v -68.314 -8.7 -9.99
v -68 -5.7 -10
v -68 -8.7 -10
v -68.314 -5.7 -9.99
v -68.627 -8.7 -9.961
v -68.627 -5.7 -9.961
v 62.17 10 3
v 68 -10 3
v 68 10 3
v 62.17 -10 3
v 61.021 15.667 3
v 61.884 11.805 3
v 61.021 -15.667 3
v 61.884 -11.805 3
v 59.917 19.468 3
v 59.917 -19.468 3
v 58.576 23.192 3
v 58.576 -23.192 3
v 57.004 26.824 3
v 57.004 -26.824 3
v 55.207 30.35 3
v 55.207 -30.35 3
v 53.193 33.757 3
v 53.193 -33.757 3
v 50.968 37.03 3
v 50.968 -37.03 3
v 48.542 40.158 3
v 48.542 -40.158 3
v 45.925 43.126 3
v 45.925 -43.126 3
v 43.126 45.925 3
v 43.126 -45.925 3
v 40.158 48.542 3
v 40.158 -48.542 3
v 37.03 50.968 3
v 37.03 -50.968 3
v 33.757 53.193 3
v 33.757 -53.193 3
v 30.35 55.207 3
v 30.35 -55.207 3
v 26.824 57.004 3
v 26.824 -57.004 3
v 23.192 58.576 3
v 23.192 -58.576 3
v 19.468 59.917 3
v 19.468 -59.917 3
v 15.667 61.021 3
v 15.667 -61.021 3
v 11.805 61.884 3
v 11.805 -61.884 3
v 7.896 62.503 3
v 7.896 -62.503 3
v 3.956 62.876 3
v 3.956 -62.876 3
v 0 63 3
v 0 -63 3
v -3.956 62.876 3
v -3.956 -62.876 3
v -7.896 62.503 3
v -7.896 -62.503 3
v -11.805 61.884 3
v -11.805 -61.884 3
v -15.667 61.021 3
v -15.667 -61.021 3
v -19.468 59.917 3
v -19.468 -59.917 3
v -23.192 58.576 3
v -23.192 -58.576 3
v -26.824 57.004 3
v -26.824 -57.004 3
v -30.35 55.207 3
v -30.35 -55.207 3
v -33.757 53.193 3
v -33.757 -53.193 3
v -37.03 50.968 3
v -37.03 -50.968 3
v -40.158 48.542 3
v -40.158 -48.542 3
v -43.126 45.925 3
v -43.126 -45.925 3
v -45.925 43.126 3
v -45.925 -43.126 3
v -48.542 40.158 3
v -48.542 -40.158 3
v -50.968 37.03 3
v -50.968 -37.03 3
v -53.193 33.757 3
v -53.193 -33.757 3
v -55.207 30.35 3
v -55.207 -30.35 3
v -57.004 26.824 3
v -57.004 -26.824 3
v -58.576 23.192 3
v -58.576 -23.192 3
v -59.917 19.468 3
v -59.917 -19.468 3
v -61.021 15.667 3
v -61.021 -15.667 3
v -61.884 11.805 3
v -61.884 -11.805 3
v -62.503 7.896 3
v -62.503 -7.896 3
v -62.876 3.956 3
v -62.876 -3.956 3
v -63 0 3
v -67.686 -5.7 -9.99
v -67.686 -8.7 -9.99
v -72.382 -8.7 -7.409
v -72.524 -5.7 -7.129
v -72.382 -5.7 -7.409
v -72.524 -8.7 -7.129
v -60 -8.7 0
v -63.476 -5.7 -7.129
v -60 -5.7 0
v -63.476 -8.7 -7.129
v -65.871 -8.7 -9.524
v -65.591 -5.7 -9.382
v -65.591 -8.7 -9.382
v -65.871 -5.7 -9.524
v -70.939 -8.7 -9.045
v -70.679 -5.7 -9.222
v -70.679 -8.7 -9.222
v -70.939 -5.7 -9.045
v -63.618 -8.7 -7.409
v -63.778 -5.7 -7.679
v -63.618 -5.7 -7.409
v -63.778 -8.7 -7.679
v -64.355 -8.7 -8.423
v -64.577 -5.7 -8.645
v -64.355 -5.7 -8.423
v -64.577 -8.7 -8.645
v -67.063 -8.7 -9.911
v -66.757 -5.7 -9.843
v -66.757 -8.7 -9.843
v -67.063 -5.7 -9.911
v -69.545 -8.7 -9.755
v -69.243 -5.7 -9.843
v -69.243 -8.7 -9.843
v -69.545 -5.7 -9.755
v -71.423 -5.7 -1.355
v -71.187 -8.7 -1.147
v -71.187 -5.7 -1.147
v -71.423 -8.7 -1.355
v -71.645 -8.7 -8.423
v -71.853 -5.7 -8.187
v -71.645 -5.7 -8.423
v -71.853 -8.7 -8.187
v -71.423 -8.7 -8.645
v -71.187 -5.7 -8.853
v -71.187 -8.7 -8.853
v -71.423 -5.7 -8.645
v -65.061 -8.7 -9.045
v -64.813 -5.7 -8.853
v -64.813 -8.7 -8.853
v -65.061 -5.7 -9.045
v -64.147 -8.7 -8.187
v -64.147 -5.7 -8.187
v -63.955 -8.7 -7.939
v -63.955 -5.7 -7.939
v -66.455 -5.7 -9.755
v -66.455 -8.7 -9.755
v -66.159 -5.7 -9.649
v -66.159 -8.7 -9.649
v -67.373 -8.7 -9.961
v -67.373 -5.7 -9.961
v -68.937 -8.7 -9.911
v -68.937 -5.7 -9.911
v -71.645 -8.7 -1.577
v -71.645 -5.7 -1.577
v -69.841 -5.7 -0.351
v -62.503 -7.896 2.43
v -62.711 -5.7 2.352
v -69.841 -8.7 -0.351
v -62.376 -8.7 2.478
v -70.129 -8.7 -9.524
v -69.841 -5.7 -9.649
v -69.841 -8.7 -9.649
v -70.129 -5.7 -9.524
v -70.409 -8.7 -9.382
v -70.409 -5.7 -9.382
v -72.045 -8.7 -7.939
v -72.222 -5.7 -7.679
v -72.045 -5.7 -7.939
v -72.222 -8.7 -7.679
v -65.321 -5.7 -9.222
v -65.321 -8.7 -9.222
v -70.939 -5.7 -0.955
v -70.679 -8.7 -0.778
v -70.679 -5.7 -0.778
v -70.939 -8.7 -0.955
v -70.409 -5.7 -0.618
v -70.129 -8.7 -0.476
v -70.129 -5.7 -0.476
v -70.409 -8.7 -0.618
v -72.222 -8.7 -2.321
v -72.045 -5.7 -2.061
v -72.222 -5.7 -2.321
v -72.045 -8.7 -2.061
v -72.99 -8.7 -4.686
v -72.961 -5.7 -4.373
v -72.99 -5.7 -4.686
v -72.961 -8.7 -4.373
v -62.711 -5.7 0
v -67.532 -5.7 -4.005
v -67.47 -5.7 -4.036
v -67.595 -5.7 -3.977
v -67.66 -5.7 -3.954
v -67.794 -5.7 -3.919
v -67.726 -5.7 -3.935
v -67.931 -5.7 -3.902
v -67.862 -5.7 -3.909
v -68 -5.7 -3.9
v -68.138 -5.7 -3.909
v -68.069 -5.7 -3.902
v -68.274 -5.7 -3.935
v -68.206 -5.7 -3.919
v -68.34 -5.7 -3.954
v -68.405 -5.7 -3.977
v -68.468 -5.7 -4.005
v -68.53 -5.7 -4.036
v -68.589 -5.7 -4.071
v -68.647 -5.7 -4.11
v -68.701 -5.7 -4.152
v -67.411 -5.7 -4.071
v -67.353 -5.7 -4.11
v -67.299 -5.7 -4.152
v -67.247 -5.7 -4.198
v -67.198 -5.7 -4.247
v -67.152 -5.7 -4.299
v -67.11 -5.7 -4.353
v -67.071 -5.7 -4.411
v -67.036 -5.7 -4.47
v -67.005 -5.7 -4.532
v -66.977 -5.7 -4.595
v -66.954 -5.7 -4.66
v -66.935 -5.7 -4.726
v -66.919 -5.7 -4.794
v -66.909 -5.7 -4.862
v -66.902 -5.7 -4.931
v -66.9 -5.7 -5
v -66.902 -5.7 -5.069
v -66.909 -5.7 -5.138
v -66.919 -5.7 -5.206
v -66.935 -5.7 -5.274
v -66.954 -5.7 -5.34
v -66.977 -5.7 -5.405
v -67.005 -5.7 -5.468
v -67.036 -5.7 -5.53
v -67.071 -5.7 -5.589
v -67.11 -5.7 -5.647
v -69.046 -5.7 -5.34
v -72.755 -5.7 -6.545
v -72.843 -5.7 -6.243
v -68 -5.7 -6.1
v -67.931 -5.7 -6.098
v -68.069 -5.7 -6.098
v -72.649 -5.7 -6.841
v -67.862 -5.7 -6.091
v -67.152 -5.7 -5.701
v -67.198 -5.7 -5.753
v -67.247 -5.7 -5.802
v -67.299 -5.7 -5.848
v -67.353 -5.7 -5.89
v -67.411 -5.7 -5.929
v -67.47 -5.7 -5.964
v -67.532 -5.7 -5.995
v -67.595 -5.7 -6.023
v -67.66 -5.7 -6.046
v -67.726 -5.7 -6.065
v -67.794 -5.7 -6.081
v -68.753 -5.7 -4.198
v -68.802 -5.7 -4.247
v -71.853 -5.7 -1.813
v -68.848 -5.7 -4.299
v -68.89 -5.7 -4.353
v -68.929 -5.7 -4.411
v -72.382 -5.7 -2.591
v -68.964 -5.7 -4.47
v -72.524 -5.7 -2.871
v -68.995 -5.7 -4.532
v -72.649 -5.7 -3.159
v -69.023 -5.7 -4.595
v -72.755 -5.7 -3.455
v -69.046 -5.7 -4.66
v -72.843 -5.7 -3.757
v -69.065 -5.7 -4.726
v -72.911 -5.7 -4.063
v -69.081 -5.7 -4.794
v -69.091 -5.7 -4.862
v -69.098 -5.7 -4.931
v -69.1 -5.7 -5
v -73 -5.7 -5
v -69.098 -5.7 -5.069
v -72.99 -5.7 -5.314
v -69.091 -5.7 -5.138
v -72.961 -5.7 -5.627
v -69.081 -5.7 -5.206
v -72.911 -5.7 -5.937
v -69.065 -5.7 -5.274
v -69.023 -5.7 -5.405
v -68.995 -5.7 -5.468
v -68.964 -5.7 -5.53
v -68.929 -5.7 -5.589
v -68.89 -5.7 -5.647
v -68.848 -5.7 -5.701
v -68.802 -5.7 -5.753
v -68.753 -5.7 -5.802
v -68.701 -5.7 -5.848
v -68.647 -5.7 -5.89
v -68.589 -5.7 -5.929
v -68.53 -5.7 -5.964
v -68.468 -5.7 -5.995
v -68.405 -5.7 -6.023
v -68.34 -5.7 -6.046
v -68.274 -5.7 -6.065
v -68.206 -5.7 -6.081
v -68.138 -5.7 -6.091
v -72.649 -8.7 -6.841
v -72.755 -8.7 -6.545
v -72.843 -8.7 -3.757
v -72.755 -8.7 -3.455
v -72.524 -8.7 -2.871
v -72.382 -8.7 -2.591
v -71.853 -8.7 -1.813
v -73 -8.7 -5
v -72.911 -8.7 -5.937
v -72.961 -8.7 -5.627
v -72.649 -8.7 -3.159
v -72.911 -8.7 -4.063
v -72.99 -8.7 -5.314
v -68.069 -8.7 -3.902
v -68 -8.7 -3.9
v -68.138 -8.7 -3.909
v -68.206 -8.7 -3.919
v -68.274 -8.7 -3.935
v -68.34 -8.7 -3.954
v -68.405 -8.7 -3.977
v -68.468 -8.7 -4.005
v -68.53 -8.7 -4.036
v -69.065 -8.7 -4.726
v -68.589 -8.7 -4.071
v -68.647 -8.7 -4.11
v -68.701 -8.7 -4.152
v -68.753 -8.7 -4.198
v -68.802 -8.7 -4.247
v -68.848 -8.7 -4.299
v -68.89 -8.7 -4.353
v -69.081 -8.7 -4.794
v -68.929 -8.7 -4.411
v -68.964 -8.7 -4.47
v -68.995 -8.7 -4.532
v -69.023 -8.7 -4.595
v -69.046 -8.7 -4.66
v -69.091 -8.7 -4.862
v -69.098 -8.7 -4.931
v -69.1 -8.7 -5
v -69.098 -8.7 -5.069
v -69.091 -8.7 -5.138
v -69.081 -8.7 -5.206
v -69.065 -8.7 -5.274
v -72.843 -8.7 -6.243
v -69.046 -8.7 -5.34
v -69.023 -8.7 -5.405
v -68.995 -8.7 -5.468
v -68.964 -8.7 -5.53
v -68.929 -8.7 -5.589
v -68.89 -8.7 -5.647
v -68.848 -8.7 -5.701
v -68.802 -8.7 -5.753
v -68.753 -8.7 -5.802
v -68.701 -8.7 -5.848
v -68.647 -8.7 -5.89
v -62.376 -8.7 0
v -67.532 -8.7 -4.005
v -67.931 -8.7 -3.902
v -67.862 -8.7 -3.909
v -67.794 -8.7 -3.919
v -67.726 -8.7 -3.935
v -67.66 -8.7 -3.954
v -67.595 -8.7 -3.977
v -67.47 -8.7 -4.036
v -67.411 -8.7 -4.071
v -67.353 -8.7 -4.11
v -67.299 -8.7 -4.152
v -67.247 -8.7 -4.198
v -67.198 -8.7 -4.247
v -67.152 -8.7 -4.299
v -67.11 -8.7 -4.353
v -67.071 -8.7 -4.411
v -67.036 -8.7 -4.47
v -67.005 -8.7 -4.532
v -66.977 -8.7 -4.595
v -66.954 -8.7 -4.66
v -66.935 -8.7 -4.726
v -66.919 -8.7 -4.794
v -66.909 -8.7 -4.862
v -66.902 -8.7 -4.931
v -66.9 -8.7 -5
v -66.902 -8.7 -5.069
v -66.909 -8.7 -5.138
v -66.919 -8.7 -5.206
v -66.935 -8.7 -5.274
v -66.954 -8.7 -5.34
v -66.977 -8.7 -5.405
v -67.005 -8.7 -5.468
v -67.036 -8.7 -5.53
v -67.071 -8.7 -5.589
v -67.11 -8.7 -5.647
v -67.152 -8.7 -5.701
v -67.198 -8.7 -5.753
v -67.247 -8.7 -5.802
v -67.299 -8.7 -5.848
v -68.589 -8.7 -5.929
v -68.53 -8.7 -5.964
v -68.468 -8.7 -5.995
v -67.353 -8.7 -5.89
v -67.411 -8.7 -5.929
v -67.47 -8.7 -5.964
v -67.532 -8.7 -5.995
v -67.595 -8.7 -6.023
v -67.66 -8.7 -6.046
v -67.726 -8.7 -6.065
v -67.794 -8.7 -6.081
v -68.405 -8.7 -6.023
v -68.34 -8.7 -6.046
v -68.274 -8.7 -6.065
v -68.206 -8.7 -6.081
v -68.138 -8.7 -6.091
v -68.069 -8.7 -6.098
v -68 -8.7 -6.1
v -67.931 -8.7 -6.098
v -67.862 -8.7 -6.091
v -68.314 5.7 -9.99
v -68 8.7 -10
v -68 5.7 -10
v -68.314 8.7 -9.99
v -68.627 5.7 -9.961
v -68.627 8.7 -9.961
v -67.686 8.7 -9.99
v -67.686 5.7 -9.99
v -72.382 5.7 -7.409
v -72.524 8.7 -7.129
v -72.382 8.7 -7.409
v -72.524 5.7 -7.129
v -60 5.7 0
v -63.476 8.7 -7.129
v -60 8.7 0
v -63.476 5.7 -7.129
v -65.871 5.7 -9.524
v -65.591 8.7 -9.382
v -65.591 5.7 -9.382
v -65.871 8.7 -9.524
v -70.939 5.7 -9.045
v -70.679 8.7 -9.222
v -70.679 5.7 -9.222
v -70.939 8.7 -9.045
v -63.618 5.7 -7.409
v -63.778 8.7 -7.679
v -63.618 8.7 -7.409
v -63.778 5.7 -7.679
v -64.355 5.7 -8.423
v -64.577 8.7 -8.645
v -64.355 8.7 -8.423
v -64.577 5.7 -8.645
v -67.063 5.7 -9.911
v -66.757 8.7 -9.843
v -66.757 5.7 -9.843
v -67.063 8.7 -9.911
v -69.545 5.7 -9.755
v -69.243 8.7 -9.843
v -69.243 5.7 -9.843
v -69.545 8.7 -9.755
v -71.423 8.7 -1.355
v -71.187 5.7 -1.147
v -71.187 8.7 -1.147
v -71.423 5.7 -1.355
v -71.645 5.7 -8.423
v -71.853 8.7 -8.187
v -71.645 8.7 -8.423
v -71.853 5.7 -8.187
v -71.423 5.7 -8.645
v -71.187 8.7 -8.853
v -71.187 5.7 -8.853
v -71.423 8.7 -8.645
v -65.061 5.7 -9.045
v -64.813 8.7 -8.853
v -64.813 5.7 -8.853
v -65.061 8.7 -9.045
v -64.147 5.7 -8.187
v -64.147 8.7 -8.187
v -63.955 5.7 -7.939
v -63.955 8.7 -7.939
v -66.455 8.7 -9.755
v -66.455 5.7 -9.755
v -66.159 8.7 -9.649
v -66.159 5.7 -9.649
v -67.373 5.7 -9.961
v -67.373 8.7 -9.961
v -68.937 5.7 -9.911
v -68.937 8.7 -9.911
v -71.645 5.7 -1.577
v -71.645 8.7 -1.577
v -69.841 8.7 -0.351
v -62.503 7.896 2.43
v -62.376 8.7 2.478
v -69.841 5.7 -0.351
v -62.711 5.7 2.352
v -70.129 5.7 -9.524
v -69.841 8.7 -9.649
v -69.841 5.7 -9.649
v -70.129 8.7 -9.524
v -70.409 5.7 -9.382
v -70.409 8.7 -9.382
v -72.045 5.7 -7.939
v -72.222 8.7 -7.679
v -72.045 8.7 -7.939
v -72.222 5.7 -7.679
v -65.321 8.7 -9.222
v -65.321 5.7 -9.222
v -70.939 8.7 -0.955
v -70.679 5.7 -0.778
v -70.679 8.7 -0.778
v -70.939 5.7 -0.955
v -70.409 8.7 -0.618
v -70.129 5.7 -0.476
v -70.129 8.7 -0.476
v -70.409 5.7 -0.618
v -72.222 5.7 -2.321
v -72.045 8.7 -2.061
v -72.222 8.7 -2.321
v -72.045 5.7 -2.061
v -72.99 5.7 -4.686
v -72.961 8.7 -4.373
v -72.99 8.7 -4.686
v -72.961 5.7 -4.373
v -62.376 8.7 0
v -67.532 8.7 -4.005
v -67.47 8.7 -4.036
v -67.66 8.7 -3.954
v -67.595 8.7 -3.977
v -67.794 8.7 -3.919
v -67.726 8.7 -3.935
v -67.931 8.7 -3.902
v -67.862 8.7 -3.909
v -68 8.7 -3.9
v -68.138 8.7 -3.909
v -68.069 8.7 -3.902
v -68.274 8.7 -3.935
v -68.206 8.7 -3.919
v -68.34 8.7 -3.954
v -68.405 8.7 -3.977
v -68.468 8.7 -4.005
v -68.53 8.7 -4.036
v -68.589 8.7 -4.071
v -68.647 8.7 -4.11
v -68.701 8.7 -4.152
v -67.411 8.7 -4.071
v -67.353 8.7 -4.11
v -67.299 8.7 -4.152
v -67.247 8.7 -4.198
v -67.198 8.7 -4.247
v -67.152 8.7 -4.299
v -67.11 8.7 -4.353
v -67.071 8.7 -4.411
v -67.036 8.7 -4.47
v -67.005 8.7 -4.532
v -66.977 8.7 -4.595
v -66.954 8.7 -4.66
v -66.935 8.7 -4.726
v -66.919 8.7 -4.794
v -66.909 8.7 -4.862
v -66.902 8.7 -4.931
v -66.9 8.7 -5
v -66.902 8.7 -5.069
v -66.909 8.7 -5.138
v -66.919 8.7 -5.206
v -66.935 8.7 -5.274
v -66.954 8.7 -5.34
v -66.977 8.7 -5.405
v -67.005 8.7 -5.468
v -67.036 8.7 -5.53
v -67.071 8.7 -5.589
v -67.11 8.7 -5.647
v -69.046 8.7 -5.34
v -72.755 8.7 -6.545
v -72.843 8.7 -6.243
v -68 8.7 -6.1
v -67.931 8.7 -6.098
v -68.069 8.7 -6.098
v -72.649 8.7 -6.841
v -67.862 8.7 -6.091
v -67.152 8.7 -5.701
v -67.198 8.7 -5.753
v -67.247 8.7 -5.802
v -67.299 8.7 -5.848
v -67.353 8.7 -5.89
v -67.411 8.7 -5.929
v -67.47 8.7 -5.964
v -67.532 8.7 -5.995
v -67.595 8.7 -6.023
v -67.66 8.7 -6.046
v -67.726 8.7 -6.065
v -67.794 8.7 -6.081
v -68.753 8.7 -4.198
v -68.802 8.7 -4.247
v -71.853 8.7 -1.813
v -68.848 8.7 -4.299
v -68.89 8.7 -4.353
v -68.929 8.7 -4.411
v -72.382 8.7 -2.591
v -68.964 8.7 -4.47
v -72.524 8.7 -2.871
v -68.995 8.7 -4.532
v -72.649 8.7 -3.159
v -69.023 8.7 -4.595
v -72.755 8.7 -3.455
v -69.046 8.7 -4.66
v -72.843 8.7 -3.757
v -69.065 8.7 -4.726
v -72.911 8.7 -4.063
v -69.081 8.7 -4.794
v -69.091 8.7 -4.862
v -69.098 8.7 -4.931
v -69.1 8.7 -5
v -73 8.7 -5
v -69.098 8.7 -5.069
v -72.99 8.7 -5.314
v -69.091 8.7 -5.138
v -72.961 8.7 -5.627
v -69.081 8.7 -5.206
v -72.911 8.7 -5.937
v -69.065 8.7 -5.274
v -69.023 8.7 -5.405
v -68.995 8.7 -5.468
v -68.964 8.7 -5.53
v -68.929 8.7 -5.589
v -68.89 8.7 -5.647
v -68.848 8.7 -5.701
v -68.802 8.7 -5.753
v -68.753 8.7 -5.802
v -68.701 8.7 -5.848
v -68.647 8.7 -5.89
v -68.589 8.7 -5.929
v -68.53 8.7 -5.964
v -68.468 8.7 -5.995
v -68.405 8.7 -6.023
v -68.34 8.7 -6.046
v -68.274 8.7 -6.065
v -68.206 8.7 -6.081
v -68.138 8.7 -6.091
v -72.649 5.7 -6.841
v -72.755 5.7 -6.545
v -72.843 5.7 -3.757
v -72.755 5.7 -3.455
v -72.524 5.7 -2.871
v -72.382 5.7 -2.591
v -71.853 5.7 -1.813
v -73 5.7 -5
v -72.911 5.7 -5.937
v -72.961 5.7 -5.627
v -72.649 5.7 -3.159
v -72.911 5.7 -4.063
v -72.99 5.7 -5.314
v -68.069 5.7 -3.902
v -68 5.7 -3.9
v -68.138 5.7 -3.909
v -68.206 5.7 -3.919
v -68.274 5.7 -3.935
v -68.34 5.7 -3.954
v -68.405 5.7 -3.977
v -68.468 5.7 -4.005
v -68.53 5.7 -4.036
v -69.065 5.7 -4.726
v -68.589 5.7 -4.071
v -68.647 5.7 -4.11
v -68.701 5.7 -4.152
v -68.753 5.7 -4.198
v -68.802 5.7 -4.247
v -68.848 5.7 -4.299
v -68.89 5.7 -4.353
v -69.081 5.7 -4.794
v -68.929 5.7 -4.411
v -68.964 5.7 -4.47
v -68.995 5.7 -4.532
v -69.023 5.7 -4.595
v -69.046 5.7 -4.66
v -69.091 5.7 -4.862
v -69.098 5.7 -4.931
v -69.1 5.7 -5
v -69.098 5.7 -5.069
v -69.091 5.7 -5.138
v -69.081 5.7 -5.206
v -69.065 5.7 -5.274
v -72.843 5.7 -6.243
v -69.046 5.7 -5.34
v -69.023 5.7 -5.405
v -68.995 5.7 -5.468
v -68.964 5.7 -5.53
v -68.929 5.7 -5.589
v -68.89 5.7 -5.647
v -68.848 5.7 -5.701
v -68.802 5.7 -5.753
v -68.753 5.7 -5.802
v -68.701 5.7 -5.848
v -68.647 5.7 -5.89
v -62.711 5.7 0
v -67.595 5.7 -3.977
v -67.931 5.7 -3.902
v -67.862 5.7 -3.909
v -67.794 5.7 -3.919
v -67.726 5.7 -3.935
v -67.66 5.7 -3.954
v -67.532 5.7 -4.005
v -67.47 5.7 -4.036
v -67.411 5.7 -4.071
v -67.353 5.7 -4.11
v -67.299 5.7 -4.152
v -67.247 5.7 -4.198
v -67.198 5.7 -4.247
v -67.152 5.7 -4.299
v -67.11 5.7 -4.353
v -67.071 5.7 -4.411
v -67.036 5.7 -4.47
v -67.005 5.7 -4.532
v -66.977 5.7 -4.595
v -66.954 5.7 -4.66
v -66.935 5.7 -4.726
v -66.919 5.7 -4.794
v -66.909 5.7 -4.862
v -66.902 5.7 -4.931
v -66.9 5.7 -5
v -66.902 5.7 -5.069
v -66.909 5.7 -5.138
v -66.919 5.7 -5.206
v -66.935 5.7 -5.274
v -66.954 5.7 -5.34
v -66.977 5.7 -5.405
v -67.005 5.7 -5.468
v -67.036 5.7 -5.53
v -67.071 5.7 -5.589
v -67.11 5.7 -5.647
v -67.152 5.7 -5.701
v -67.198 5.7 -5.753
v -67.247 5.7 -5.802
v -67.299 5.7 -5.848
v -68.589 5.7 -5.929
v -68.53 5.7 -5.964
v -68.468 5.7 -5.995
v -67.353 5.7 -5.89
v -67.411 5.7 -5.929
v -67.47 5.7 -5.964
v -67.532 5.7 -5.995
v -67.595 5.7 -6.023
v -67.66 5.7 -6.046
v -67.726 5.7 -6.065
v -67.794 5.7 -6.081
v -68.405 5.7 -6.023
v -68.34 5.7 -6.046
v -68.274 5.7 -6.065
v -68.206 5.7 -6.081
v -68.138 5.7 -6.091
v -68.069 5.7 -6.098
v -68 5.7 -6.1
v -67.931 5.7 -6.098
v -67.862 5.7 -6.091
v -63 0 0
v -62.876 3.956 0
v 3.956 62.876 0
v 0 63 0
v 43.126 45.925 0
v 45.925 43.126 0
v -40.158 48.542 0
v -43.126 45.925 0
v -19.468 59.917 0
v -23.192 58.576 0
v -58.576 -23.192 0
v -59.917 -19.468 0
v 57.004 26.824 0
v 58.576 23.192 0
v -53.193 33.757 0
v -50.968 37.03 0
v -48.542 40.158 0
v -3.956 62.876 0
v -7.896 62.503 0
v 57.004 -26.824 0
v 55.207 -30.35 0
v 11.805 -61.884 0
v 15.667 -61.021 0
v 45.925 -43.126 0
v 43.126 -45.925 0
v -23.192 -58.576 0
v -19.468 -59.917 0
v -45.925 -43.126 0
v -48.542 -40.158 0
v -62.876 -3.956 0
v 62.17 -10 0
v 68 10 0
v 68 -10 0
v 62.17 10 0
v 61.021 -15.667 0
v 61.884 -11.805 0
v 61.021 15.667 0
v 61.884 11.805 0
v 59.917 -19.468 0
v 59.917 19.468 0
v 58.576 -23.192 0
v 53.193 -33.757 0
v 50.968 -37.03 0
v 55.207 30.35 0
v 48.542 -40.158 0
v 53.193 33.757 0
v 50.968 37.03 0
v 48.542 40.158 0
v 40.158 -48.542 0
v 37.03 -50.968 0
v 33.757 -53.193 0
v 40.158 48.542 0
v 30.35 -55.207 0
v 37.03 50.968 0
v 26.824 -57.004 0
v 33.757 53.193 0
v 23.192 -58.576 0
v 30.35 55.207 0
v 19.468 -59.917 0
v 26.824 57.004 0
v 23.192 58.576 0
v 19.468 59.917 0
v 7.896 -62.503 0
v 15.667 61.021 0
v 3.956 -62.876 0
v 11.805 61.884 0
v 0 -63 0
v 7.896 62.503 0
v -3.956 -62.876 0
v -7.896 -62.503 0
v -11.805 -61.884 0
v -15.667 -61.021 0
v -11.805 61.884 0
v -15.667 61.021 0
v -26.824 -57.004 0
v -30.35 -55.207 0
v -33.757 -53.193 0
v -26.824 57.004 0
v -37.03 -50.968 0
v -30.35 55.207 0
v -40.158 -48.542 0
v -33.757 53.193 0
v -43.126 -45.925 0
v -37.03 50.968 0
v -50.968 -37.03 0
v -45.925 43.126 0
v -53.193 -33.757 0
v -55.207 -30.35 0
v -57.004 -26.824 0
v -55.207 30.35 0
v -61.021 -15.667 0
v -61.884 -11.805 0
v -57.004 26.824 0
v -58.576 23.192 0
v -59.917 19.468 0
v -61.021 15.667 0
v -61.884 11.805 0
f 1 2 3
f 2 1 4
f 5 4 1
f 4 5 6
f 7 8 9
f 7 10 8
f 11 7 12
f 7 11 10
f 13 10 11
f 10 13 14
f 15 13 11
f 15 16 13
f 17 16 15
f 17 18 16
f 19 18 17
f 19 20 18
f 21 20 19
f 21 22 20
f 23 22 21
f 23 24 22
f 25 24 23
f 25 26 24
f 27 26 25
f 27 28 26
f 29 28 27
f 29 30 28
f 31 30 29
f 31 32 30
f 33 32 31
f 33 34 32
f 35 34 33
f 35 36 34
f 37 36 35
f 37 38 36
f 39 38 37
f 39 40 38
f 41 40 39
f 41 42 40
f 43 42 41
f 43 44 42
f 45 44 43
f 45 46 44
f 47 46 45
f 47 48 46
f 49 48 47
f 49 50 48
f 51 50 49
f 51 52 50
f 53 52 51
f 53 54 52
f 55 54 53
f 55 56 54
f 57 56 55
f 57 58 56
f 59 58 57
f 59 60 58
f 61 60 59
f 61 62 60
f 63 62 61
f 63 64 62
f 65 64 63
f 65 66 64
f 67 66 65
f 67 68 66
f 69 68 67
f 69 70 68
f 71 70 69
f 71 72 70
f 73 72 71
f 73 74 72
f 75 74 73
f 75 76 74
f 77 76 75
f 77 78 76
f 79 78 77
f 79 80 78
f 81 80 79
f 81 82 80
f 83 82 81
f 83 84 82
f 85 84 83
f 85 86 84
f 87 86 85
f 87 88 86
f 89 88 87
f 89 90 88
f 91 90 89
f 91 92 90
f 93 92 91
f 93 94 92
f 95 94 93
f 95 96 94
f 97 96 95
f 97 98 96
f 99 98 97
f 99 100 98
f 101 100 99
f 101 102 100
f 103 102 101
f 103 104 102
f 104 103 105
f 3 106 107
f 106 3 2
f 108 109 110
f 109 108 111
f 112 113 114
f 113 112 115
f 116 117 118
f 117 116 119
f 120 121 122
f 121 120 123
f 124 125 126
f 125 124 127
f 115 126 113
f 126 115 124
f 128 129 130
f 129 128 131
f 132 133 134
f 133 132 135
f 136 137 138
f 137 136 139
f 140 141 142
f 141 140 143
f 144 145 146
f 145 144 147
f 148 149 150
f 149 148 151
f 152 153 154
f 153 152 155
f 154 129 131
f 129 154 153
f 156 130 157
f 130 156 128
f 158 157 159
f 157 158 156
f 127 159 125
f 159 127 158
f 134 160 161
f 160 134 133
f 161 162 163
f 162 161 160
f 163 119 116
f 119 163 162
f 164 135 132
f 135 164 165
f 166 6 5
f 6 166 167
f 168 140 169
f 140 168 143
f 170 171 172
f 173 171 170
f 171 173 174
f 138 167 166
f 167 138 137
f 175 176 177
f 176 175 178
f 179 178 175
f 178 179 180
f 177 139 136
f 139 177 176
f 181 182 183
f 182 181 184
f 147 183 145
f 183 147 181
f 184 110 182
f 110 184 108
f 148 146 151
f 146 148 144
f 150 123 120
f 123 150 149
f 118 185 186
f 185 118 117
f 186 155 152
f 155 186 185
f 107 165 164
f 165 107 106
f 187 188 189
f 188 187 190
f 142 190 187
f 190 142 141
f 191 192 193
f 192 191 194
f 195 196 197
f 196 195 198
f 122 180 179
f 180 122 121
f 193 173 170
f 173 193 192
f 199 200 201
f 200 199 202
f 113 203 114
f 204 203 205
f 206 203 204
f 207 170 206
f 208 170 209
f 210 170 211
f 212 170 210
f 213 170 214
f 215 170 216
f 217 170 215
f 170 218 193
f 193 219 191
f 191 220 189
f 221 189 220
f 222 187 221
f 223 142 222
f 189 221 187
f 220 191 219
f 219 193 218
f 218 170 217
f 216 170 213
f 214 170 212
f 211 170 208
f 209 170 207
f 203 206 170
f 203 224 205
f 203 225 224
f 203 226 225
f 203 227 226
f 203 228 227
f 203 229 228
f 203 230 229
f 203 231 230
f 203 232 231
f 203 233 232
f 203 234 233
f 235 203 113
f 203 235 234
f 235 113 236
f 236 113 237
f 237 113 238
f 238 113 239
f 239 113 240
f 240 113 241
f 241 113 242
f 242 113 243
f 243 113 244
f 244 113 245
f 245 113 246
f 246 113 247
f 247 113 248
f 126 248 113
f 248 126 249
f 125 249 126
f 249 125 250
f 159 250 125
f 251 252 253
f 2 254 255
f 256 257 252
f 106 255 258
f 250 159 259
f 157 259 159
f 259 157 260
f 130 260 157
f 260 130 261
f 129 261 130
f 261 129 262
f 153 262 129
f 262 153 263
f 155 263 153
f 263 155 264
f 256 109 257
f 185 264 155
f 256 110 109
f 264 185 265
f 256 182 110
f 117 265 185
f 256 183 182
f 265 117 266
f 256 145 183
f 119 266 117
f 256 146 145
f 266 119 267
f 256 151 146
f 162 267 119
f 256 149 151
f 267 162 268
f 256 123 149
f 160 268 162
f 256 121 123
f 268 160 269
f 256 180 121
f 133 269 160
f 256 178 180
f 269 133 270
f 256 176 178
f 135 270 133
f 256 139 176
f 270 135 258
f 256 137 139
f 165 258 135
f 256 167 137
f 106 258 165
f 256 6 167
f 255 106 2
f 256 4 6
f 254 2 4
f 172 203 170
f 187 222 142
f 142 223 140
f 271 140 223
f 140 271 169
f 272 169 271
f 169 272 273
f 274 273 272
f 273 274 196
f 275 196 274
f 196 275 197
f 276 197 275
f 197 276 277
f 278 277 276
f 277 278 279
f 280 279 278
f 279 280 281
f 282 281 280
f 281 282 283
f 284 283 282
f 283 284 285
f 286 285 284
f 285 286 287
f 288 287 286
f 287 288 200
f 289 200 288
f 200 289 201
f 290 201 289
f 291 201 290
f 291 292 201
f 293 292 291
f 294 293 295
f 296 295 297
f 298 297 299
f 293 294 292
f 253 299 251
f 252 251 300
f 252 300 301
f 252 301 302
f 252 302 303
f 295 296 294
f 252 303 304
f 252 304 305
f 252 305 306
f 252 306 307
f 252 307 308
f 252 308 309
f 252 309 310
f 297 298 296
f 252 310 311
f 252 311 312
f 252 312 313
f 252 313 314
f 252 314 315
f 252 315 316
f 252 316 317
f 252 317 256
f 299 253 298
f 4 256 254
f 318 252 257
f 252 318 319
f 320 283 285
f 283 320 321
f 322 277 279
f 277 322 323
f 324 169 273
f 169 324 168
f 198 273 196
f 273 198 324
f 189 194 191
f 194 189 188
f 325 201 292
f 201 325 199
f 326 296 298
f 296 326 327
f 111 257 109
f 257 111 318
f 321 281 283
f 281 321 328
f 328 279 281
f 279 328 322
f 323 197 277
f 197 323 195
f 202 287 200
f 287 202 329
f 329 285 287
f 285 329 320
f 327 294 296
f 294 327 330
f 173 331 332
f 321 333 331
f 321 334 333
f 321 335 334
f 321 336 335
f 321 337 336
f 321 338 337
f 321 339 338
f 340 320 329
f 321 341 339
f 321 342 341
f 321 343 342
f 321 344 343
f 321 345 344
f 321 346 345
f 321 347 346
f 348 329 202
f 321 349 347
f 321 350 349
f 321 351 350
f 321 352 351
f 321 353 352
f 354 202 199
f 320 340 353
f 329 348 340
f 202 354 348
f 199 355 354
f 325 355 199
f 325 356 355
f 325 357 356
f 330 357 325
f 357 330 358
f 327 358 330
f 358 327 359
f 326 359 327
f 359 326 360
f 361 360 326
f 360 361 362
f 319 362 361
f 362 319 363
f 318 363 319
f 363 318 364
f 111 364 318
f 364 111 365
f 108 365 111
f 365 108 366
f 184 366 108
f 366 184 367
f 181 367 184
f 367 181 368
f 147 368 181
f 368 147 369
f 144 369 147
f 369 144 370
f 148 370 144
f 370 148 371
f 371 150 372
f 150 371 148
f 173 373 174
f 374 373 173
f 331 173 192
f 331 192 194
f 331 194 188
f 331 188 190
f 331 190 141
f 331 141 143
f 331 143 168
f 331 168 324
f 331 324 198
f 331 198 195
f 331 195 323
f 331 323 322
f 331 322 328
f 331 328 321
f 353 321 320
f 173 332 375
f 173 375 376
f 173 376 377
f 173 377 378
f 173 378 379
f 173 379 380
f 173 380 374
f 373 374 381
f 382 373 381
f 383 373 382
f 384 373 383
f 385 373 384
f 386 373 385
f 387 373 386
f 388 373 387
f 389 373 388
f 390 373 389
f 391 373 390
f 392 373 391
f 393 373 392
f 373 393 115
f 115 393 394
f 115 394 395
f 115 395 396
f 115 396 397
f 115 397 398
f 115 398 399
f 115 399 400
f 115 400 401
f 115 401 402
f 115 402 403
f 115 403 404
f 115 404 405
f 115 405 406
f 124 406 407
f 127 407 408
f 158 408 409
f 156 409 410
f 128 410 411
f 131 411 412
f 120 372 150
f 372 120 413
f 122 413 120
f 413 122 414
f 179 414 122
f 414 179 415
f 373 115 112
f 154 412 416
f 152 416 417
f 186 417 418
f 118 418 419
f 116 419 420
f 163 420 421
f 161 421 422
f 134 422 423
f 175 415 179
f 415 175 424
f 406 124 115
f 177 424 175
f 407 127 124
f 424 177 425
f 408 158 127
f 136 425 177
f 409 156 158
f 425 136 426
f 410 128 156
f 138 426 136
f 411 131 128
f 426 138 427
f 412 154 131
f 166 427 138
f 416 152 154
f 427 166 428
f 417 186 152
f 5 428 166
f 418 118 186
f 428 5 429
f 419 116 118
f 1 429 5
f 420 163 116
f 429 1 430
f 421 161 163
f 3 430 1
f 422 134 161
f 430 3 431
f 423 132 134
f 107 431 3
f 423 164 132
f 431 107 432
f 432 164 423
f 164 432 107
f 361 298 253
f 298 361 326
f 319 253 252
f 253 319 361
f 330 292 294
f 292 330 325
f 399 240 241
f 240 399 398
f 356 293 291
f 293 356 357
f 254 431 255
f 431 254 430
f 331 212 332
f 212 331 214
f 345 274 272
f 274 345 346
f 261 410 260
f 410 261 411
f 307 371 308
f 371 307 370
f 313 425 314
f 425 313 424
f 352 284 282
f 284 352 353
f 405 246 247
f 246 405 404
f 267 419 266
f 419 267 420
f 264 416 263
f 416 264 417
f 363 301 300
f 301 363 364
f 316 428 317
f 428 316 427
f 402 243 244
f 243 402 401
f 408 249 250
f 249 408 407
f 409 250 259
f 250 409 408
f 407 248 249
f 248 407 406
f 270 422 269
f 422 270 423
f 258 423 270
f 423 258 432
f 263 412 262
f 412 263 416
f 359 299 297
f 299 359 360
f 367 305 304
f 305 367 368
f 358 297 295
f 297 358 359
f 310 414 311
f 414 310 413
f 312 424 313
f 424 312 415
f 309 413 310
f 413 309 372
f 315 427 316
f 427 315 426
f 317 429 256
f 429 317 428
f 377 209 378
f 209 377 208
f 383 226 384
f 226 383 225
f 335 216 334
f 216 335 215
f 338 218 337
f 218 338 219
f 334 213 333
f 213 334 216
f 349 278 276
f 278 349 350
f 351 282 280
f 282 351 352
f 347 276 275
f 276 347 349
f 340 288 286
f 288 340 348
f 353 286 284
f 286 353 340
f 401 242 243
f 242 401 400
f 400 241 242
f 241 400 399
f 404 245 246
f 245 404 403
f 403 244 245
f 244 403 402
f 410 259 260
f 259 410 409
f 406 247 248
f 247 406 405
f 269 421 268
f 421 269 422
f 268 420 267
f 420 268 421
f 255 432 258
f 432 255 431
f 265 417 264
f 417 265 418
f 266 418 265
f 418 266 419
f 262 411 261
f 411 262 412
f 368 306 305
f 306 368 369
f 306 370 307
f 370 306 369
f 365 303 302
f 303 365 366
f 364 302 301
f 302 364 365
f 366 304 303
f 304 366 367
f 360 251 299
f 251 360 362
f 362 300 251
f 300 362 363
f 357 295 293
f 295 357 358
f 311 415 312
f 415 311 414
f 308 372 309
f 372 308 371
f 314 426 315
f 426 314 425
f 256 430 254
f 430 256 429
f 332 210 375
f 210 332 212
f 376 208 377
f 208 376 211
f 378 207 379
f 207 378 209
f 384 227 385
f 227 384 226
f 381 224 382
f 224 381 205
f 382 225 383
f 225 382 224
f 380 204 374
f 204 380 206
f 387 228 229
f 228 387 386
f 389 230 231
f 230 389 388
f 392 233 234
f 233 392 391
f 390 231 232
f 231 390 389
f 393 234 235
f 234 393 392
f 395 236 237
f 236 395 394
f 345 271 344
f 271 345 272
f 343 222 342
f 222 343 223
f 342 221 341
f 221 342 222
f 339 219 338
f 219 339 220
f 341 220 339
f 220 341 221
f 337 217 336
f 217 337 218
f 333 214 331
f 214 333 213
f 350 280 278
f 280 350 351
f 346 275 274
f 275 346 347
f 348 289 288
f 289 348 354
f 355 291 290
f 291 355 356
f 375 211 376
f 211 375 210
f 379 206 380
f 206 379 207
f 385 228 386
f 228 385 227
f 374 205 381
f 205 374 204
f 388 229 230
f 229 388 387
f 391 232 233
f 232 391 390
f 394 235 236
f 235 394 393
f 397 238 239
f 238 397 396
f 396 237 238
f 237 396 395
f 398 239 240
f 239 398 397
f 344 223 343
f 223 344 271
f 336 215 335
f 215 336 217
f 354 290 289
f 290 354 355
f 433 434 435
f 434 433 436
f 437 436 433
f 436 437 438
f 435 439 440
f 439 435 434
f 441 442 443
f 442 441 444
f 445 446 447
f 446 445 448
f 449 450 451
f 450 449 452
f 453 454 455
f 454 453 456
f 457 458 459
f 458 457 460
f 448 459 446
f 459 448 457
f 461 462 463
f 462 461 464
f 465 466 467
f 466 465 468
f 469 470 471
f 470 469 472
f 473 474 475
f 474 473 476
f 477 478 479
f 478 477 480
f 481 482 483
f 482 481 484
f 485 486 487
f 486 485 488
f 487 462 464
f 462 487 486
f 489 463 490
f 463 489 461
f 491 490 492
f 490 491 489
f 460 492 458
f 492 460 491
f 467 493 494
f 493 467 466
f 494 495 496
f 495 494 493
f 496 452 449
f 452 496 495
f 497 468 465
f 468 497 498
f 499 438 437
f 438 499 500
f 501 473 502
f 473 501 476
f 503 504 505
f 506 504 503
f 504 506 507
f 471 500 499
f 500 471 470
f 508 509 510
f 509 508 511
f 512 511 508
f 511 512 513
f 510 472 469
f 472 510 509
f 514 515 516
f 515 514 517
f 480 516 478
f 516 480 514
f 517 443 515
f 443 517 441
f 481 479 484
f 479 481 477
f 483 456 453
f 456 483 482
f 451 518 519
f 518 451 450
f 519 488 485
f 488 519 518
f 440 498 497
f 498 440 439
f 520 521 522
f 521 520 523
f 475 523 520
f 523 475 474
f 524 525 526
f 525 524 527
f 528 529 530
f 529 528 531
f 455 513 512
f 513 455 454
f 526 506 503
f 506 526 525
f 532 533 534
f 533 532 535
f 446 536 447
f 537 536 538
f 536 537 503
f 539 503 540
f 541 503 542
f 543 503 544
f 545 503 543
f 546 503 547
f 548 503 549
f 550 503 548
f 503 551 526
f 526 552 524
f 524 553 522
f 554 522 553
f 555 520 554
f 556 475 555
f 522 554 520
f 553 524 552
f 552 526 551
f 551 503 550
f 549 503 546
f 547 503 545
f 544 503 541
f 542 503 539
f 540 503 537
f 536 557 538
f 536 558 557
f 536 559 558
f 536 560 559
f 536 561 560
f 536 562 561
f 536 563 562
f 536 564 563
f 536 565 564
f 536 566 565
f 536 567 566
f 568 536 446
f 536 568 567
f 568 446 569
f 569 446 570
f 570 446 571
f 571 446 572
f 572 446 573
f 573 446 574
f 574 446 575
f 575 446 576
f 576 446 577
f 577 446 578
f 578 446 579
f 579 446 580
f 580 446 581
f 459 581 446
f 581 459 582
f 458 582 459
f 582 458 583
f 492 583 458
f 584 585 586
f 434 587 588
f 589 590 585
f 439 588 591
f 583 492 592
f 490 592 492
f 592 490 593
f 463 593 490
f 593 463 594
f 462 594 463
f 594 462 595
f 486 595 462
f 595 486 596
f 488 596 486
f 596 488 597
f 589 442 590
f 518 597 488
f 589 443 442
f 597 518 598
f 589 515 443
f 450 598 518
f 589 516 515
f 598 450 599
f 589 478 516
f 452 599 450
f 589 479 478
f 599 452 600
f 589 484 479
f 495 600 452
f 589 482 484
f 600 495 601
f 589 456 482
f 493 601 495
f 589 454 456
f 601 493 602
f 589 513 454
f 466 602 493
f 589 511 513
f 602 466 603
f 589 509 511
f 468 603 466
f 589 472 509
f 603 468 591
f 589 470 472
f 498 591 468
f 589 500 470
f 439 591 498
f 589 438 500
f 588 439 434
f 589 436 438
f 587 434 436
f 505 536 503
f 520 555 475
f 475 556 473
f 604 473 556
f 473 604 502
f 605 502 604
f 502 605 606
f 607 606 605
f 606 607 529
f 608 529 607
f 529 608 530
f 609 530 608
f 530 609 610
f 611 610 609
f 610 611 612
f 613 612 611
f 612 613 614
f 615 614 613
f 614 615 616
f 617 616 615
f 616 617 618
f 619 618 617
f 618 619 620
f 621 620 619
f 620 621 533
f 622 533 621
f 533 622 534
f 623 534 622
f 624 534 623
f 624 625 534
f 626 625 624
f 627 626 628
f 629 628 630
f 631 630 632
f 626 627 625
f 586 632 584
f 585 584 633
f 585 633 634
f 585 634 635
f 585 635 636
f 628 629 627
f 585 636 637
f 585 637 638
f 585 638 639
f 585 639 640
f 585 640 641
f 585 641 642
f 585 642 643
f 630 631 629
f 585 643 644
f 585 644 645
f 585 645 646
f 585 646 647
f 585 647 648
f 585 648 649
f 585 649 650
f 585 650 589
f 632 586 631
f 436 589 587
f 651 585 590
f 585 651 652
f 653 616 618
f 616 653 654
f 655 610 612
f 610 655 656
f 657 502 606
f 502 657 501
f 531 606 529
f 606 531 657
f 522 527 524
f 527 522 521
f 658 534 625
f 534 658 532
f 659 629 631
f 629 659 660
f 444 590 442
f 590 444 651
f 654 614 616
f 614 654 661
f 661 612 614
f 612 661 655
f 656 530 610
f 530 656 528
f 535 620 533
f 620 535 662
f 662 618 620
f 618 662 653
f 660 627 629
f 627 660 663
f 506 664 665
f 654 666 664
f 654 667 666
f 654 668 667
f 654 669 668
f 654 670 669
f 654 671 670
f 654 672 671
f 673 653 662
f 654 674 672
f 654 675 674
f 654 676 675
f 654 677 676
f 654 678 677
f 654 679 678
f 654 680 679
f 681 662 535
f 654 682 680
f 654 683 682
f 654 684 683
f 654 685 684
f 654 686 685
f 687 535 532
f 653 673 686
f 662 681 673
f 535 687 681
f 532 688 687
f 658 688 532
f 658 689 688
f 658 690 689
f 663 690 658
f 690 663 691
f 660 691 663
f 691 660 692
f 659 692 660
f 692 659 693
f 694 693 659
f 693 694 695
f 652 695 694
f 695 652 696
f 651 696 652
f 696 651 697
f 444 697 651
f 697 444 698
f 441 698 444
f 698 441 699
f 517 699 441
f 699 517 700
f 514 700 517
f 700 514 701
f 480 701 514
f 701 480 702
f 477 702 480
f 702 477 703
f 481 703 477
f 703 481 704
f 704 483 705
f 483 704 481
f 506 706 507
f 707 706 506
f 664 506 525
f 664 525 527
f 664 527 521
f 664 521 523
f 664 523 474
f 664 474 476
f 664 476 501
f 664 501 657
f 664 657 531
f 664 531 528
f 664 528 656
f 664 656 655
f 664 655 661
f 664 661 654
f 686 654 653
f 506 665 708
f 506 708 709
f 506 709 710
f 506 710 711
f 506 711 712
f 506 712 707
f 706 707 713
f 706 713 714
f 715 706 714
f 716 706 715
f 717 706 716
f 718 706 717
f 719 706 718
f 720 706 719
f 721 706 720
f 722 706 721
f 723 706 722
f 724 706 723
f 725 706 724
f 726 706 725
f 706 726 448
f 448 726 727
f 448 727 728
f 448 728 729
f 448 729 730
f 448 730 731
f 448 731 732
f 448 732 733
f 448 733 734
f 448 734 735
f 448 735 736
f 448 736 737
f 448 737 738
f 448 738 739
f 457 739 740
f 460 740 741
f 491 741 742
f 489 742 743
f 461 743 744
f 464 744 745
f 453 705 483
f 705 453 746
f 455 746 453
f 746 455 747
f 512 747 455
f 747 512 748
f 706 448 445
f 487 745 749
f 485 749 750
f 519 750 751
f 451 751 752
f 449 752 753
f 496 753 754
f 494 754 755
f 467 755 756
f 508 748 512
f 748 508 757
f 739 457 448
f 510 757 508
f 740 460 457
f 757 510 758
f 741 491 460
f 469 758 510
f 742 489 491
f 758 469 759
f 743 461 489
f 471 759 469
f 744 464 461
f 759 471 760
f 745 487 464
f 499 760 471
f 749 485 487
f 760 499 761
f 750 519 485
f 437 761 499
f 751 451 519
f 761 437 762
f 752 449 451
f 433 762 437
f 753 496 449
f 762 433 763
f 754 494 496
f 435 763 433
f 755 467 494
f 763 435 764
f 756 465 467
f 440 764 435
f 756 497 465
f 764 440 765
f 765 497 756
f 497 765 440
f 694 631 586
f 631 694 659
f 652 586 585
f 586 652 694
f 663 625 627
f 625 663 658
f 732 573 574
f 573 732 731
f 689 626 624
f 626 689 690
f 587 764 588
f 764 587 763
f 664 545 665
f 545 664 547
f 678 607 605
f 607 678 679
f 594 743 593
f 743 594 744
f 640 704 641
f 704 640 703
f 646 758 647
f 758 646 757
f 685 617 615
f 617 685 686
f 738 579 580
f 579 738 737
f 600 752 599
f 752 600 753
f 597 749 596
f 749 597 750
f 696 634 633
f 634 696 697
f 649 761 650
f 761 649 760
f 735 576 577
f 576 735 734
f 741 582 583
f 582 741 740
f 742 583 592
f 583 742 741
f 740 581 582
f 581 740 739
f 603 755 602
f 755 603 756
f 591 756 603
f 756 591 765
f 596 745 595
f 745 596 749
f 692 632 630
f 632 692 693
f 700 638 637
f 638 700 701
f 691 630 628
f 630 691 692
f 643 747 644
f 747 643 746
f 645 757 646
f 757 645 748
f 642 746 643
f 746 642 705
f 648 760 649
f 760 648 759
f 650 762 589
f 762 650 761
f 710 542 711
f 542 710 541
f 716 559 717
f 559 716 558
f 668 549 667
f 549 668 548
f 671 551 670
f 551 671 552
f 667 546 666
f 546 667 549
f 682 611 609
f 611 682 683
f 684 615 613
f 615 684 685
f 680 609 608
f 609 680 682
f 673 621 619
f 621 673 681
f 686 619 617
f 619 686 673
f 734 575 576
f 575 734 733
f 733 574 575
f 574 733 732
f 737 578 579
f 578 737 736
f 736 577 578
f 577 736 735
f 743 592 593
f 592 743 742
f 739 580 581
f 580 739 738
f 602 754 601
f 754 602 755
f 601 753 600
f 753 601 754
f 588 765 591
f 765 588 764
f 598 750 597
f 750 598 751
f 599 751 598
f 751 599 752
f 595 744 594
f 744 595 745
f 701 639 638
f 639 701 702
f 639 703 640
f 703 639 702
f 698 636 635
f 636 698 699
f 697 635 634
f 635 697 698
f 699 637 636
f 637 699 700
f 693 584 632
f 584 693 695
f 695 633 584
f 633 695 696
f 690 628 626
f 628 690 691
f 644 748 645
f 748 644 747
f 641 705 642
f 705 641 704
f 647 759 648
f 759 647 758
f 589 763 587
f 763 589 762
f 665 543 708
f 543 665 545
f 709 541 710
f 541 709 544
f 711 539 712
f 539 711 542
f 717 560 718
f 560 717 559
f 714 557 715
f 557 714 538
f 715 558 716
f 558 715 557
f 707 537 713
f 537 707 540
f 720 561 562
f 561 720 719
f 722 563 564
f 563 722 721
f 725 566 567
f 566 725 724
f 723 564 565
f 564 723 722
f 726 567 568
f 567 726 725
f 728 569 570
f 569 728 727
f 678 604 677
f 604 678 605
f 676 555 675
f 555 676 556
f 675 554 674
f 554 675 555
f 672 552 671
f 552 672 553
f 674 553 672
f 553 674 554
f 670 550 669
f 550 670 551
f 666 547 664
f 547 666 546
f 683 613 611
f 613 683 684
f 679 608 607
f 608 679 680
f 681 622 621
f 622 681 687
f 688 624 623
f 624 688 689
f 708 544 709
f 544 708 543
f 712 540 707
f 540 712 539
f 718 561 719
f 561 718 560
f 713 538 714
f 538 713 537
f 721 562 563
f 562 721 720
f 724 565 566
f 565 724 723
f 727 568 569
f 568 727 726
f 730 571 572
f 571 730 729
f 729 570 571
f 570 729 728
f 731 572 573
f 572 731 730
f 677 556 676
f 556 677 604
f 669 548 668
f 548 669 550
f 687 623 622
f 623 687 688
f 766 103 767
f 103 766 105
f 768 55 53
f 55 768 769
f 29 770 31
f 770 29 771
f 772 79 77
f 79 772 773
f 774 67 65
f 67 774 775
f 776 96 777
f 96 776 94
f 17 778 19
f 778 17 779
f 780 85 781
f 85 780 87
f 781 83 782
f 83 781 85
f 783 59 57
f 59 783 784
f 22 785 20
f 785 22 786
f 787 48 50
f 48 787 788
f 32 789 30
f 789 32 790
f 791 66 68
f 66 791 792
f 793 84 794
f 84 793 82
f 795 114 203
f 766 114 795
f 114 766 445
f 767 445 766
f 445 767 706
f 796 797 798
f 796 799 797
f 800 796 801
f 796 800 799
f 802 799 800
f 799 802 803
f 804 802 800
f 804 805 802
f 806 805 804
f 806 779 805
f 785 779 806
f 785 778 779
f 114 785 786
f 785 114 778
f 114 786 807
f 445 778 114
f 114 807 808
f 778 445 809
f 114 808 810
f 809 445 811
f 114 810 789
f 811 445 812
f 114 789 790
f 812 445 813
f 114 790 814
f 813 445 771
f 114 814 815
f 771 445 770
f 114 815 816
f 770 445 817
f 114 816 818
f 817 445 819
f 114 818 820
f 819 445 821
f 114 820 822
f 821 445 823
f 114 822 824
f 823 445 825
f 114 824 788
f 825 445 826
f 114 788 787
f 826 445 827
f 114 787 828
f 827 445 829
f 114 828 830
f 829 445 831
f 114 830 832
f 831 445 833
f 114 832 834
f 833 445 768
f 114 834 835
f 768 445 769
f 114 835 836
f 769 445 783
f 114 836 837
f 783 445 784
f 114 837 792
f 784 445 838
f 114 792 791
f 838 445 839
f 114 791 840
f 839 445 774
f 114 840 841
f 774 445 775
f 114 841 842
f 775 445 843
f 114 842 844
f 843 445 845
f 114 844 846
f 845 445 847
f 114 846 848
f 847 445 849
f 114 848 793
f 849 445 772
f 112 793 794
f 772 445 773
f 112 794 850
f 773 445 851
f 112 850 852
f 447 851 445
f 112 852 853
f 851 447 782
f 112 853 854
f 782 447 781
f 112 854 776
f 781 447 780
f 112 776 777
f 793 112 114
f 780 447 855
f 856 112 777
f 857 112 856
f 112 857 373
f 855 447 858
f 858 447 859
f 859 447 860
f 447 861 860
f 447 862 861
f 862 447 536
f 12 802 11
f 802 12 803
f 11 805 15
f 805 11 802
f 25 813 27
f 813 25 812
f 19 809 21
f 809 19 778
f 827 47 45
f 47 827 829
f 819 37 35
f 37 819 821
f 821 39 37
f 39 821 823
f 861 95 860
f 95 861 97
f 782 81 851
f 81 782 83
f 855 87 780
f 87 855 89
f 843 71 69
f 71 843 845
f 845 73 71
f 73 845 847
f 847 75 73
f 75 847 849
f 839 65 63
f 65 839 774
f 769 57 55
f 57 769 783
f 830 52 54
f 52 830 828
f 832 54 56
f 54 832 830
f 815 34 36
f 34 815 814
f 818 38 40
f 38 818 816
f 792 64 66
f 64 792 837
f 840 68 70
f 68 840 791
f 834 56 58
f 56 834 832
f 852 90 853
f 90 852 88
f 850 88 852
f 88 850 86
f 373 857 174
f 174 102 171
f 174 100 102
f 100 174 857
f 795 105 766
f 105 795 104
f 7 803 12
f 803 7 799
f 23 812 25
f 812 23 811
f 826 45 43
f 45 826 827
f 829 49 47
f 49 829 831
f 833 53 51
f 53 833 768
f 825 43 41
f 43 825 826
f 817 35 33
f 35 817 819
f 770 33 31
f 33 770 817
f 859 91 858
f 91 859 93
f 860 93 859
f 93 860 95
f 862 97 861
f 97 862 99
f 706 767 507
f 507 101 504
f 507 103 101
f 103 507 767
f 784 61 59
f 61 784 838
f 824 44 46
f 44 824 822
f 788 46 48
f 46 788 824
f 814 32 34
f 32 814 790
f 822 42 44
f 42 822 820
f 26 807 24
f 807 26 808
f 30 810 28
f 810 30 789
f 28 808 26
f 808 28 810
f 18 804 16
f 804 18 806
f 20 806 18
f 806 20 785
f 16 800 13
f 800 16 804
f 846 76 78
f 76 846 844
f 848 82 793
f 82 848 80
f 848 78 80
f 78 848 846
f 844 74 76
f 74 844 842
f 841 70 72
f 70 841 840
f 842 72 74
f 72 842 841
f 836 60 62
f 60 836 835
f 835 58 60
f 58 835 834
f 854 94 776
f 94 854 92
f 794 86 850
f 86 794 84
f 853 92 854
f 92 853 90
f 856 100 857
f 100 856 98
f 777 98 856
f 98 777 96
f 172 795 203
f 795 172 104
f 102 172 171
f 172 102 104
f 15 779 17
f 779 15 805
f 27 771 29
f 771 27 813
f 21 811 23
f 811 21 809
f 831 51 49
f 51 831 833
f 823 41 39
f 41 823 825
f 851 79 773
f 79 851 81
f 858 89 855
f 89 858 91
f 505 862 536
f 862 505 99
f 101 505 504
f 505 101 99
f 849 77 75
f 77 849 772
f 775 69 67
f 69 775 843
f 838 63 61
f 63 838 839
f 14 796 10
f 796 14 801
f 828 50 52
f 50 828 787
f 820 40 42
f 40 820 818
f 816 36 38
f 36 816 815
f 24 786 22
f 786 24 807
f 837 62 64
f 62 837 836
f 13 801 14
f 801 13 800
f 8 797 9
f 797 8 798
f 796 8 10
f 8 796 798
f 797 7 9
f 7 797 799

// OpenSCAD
// Medify - Upper Cover (Precision Spacing Edition)
$fn = 100;
dia_base = 120; 
dia_cover = 126; // 3mm overhang per side [cite: 14]
wall = 3;
hinge_x = 68; // [cite: 14]

union() {
    // 1. המכסה
    cylinder(h = wall, d = dia_cover);
    
    // 2. אוזני הציר - פיסוק מוקטן ל-11.4 מ"מ (מרווח של 0.7 מ"מ מכל צד)
    for (y = [-8.7, 5.7]) {
        translate([-hinge_x, y, -5]) 
        difference() {
            hull() {
                // גליל הציר [cite: 16]
                rotate([-90, 0, 0]) cylinder(h = 3, r = 5);
                
                // חיבור לדופן המכסה מחוץ לקו ה-60 מ"מ [cite: 18]
                translate([hinge_x - 61, 0, 5]) cube([1, 3, wall]); 
            }
            // חור הציר אופקי [cite: 19]
            rotate([-90, 0, 0]) translate([0, 0, -1]) cylinder(h = 5, r = 1.1);
        }
    }
    
    // 3. ידית פתיחה [cite: 20]
    translate([dia_cover/2 - 5, -10, 0]) cube([10, 20, wall]);
}
